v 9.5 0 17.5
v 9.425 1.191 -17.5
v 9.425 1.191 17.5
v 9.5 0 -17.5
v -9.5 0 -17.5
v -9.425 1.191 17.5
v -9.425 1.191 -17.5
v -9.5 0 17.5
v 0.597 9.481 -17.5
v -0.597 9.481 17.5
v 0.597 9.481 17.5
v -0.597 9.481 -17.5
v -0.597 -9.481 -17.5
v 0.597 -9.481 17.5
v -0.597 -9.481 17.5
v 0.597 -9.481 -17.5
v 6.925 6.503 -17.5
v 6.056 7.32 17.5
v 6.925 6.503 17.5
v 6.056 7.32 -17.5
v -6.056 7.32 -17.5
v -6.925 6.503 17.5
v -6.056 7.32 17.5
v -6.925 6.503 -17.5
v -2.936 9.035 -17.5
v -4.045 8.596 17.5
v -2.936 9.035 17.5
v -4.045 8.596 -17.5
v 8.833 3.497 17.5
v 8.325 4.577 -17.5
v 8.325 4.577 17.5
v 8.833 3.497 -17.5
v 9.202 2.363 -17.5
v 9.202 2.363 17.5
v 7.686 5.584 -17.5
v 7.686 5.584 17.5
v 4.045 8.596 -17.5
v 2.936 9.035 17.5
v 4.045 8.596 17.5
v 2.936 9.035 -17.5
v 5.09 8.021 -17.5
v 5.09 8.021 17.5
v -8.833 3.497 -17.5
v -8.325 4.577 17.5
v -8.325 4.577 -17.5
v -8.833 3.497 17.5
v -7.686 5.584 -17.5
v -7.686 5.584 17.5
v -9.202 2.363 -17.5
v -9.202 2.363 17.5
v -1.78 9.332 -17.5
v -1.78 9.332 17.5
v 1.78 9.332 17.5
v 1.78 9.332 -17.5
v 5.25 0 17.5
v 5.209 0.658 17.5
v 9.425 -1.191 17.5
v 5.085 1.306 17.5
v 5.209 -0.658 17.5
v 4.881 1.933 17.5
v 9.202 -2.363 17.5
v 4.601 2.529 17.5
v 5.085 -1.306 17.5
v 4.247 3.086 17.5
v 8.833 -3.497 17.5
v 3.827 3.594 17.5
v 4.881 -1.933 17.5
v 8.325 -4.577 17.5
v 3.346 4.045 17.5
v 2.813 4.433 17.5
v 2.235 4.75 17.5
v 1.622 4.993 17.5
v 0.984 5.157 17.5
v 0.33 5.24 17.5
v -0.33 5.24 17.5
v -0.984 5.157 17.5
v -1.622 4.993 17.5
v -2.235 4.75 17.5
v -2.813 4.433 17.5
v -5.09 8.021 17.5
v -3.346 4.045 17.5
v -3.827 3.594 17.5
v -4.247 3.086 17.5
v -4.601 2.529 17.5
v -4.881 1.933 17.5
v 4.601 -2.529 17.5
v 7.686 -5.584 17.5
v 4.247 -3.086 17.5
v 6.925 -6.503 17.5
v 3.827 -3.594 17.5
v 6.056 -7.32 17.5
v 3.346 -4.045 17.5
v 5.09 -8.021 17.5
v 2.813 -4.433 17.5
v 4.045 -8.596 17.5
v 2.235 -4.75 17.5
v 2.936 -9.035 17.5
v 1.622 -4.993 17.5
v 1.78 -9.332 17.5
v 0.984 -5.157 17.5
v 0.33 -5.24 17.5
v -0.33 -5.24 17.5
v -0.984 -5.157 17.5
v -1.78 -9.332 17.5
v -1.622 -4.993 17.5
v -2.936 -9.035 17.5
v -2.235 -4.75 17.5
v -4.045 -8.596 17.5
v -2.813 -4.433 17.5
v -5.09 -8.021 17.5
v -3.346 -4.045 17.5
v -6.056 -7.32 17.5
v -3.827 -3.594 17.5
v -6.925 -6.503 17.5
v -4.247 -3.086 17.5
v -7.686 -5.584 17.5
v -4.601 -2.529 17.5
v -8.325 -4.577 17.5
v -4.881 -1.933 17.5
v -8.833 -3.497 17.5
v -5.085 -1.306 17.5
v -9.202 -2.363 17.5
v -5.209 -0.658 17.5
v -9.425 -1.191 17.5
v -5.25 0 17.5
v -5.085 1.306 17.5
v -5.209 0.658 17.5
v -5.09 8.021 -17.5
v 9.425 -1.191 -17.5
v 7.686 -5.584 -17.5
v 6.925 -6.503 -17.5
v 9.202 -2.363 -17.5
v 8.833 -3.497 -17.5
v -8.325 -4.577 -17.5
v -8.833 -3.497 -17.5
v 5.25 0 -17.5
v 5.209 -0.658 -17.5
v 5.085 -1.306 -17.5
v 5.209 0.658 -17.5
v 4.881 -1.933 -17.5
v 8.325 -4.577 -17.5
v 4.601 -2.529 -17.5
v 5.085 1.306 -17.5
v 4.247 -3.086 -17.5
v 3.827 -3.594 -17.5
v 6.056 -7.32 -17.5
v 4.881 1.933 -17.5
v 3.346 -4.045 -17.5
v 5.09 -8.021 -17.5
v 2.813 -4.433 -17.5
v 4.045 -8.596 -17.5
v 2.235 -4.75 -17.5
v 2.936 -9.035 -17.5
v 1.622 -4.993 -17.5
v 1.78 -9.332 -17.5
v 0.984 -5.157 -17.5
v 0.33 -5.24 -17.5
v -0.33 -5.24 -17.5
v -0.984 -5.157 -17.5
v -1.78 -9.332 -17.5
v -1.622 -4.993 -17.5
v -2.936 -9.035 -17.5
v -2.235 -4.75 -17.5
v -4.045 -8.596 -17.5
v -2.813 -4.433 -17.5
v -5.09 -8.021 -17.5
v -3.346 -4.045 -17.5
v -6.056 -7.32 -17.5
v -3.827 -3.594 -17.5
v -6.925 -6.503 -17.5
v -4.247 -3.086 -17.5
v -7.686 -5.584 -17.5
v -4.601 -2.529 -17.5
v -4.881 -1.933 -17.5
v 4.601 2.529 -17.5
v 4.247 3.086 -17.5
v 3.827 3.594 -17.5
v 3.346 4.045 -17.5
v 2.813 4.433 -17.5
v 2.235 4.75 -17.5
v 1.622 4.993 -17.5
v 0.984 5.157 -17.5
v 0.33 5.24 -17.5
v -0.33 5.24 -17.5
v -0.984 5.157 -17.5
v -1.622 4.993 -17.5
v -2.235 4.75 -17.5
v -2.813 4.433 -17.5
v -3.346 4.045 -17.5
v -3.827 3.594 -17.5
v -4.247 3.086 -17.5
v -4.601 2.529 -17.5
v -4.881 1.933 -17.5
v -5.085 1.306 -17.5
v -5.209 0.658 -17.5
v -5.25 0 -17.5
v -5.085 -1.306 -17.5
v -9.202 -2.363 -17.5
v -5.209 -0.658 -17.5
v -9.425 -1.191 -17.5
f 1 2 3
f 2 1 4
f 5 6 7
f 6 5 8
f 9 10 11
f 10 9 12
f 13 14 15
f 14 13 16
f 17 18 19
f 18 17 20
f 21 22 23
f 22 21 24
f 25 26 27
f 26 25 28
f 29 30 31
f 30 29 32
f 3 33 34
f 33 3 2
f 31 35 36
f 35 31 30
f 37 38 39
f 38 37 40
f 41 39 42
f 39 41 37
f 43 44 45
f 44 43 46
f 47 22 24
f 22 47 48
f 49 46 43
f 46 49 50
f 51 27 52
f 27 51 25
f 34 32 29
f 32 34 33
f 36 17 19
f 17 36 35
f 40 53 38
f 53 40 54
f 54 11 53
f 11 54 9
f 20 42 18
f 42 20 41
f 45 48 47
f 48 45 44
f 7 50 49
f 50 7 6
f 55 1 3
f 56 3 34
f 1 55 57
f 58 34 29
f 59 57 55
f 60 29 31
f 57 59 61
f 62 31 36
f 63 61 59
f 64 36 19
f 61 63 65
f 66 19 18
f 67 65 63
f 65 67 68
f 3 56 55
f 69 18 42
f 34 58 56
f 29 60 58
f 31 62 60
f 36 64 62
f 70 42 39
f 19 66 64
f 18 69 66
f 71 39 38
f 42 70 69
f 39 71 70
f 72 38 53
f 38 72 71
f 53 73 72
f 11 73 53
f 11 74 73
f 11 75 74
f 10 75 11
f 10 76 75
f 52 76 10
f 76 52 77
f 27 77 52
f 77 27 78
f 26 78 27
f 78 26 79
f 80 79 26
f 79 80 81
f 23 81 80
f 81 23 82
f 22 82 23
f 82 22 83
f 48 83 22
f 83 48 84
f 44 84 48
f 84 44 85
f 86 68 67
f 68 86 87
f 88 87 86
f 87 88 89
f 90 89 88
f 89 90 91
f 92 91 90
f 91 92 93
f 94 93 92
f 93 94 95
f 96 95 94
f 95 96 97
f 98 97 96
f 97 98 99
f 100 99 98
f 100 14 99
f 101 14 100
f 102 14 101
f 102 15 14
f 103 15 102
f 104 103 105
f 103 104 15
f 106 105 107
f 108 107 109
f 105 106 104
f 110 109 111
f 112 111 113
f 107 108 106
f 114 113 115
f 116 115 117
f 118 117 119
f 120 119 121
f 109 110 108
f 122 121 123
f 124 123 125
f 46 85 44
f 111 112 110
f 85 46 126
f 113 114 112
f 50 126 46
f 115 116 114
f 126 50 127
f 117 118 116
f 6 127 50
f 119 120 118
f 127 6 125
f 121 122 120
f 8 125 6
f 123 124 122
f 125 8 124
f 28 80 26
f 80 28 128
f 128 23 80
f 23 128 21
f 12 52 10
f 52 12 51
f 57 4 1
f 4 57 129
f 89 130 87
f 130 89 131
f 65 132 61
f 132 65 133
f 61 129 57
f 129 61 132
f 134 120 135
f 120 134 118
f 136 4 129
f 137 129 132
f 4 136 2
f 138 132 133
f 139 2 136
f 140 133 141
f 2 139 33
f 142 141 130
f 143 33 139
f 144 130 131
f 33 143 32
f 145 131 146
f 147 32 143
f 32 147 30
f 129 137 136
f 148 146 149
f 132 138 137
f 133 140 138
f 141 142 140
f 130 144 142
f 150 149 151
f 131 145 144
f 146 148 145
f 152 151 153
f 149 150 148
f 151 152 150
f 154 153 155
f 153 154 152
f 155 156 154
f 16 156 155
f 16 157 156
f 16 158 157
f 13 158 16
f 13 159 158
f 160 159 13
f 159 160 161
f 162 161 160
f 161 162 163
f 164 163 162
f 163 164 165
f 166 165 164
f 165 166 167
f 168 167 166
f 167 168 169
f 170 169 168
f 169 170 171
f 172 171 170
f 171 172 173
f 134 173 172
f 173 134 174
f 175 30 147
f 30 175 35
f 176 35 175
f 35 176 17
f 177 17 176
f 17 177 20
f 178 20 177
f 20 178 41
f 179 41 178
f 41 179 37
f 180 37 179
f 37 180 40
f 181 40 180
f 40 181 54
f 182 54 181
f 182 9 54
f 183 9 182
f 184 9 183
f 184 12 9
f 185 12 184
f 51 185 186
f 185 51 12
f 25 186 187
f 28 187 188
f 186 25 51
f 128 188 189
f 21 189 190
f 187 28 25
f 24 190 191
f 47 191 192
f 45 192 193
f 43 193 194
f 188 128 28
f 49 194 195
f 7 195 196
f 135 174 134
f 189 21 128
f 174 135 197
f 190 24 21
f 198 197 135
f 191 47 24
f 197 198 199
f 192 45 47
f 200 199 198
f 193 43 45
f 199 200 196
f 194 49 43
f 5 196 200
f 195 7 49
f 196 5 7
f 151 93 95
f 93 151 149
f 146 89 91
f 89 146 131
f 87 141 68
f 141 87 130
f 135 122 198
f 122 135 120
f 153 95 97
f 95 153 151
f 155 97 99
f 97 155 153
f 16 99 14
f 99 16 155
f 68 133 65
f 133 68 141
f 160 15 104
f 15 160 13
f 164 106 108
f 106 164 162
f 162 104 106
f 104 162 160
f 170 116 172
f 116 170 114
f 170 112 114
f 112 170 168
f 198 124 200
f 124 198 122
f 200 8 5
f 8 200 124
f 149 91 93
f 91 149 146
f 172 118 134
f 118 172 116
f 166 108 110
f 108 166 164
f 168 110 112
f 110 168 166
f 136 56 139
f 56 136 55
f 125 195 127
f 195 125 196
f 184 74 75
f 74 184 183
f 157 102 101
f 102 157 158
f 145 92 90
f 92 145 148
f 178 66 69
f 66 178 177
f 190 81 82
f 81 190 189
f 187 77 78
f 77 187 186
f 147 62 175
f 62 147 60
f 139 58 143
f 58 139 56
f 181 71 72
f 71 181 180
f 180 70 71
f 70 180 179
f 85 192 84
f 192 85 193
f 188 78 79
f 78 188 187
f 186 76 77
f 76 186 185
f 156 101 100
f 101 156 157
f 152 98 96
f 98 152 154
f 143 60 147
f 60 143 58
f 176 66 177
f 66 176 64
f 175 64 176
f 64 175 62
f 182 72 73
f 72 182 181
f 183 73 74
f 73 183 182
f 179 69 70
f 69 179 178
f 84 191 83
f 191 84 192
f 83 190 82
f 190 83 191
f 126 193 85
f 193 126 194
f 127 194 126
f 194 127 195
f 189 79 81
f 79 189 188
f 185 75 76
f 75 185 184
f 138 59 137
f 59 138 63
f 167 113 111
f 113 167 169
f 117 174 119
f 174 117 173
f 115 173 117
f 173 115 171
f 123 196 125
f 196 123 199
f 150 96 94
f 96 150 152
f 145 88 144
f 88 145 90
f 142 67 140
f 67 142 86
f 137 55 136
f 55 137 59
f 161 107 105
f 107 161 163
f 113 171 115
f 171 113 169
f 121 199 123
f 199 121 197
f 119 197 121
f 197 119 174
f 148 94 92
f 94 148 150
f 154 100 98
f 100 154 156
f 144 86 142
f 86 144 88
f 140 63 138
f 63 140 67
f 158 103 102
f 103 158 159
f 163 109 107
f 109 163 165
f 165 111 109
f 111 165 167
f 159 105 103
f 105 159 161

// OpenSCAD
$fn = 50;


difference() {
	union() {
		translate(v = [0, 0, -17.5000000000]) {
			cylinder(h = 35, r = 9.5000000000);
		}
	}
	union() {
		translate(v = [0, 0, -100.0000000000]) {
			cylinder(h = 200, r = 5.2500000000);
		}
	}
}
